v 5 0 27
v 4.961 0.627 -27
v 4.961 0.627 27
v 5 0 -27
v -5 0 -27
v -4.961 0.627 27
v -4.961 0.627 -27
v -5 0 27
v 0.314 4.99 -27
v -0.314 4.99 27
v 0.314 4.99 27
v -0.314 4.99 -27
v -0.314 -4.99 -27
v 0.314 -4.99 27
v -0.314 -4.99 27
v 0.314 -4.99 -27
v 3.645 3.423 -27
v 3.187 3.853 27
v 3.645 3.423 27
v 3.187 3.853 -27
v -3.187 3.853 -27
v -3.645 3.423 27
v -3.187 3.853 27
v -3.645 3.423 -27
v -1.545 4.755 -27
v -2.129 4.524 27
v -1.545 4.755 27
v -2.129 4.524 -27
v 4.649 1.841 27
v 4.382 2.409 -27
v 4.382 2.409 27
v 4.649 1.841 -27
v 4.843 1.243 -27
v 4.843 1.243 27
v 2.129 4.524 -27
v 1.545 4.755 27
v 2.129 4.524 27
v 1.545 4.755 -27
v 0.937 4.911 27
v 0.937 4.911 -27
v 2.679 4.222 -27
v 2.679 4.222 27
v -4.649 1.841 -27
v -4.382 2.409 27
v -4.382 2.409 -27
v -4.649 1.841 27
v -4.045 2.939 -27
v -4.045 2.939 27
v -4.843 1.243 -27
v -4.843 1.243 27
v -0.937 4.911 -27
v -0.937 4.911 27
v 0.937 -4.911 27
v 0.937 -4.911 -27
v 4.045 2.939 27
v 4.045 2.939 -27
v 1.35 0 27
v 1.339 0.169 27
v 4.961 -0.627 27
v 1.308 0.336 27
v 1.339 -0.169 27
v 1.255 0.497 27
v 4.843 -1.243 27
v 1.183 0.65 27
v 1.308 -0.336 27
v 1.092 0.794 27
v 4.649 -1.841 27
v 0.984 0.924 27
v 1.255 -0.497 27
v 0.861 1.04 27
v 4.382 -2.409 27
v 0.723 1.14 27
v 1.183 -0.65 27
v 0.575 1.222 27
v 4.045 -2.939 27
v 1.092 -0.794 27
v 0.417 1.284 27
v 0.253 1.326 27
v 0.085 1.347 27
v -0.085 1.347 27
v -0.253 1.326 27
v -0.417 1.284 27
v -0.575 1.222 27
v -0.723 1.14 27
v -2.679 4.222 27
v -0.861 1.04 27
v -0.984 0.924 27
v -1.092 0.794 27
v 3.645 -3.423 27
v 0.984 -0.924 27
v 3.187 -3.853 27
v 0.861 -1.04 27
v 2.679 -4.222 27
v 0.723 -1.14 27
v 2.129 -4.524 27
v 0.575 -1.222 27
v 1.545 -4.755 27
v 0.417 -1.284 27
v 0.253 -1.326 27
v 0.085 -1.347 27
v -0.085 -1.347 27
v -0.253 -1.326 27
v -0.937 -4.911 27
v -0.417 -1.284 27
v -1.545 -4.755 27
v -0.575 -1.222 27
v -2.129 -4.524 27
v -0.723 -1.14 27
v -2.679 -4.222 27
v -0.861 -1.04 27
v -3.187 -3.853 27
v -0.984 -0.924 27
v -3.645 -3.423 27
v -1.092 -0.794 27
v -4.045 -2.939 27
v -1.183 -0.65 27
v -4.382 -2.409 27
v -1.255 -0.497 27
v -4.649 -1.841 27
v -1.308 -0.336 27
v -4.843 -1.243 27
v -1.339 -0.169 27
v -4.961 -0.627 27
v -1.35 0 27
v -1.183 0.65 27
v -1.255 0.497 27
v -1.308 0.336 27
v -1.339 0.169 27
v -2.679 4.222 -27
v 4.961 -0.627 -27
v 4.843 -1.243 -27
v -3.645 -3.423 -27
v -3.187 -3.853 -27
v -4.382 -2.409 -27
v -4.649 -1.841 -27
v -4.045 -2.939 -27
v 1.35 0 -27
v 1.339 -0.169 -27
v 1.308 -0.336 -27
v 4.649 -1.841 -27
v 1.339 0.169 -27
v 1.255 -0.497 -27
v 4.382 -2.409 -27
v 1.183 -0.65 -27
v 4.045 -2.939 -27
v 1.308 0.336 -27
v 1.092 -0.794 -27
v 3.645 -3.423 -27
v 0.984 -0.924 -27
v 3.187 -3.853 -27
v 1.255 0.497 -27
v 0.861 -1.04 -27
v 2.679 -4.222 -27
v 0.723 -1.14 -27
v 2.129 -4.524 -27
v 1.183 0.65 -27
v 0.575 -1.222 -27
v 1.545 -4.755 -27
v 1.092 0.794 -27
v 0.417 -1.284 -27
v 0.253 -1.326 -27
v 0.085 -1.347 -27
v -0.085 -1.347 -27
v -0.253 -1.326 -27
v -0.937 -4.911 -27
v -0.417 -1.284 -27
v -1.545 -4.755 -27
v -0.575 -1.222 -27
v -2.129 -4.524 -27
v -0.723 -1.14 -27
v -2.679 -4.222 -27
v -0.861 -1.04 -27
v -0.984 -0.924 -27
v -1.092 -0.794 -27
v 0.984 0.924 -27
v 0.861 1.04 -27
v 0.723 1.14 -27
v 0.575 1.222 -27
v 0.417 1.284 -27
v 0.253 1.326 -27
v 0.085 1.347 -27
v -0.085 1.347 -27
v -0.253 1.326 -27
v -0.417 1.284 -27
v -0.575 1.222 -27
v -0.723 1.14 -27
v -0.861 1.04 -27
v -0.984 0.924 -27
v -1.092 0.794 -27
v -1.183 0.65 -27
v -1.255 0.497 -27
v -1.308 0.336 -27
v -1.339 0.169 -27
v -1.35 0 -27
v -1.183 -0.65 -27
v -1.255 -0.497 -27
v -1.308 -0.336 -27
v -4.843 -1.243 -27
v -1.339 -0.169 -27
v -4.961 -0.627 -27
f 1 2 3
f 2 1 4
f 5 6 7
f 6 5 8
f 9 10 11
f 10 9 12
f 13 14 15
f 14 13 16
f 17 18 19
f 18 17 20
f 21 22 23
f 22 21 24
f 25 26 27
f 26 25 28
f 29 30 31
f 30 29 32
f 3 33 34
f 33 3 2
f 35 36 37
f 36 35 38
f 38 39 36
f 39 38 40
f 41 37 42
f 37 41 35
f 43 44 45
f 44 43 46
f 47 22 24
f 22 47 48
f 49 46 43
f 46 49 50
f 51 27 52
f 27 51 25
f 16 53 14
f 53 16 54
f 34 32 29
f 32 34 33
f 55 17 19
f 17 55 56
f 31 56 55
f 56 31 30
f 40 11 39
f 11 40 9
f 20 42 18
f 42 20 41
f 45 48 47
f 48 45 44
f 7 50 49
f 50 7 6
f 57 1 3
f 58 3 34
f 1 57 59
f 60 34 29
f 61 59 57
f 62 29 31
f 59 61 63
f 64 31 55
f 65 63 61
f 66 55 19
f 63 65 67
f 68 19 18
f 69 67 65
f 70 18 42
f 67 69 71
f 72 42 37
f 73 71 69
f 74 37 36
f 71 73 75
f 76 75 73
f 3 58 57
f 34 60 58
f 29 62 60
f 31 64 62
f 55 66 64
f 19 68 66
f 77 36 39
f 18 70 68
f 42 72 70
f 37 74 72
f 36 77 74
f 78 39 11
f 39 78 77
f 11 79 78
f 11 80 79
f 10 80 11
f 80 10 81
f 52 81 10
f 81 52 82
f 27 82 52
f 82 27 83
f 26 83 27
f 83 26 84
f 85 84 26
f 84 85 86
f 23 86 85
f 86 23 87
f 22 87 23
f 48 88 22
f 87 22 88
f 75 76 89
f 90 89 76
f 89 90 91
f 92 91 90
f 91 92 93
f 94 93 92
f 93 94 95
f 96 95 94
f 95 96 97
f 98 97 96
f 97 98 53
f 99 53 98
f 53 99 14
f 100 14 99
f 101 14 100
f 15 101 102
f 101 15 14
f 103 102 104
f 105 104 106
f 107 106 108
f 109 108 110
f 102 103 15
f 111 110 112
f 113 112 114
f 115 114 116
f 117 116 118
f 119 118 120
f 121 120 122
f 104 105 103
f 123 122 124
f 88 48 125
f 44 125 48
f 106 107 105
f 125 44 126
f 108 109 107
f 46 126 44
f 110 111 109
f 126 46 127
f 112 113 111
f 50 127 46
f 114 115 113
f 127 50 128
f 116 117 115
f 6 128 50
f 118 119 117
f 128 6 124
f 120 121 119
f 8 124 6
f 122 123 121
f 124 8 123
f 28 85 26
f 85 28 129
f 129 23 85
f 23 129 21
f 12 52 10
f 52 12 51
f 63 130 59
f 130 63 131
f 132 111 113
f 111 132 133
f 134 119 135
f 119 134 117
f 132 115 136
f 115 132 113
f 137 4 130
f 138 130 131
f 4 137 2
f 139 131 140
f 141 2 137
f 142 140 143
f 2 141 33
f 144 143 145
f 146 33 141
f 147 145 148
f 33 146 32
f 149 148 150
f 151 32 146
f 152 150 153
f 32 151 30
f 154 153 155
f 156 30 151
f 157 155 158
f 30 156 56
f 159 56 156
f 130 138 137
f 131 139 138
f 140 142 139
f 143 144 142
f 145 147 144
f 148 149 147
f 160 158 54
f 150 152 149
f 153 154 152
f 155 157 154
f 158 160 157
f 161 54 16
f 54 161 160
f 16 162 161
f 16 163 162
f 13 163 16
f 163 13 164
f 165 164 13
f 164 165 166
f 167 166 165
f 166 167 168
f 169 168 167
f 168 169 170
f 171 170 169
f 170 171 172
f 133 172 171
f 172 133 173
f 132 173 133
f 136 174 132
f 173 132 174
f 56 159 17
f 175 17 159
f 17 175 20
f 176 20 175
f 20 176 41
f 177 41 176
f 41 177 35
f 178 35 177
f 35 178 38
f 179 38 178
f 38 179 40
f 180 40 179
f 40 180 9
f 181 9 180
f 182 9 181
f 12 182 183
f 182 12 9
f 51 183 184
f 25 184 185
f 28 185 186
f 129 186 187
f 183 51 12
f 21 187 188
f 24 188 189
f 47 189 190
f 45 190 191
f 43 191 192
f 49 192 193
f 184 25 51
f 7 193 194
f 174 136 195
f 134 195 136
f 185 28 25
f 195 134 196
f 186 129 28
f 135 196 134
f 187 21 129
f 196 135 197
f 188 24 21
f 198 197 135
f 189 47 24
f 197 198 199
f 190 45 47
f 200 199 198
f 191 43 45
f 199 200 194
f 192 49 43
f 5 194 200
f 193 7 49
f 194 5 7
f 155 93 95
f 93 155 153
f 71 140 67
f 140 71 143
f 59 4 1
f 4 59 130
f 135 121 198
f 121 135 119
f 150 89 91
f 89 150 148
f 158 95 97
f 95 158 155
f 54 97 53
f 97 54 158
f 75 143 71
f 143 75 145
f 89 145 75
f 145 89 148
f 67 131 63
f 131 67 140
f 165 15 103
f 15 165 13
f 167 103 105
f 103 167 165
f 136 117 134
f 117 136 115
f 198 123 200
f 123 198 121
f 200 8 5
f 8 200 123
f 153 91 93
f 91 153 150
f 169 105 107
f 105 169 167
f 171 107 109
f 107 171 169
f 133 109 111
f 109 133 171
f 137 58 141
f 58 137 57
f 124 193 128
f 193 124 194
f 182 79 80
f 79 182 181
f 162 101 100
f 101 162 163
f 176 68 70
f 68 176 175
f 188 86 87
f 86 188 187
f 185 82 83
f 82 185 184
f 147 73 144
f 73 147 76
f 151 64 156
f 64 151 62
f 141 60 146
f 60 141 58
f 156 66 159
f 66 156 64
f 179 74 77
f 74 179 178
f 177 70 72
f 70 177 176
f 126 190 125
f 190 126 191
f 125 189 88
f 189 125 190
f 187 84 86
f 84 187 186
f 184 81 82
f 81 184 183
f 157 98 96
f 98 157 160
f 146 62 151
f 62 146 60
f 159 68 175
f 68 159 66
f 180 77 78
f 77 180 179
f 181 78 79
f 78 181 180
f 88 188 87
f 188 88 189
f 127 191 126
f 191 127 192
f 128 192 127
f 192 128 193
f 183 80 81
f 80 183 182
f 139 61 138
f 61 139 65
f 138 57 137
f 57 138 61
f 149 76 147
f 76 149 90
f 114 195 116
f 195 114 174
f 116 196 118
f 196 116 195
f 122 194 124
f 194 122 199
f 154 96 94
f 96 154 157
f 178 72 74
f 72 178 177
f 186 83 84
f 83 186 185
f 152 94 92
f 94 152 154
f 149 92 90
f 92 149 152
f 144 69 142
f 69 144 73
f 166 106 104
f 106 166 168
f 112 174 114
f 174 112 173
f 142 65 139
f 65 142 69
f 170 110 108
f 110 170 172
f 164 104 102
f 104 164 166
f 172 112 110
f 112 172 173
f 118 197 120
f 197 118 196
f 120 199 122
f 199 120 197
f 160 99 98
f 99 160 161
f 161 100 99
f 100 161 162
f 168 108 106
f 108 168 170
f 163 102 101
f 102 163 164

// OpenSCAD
$fn = 50;


difference() {
	union() {
		translate(v = [0, 0, -27.0000000000]) {
			cylinder(h = 54, r = 5.0000000000);
		}
	}
	union() {
		translate(v = [0, 0, -100.0000000000]) {
			cylinder(h = 200, r = 1.3500000000);
		}
	}
}
